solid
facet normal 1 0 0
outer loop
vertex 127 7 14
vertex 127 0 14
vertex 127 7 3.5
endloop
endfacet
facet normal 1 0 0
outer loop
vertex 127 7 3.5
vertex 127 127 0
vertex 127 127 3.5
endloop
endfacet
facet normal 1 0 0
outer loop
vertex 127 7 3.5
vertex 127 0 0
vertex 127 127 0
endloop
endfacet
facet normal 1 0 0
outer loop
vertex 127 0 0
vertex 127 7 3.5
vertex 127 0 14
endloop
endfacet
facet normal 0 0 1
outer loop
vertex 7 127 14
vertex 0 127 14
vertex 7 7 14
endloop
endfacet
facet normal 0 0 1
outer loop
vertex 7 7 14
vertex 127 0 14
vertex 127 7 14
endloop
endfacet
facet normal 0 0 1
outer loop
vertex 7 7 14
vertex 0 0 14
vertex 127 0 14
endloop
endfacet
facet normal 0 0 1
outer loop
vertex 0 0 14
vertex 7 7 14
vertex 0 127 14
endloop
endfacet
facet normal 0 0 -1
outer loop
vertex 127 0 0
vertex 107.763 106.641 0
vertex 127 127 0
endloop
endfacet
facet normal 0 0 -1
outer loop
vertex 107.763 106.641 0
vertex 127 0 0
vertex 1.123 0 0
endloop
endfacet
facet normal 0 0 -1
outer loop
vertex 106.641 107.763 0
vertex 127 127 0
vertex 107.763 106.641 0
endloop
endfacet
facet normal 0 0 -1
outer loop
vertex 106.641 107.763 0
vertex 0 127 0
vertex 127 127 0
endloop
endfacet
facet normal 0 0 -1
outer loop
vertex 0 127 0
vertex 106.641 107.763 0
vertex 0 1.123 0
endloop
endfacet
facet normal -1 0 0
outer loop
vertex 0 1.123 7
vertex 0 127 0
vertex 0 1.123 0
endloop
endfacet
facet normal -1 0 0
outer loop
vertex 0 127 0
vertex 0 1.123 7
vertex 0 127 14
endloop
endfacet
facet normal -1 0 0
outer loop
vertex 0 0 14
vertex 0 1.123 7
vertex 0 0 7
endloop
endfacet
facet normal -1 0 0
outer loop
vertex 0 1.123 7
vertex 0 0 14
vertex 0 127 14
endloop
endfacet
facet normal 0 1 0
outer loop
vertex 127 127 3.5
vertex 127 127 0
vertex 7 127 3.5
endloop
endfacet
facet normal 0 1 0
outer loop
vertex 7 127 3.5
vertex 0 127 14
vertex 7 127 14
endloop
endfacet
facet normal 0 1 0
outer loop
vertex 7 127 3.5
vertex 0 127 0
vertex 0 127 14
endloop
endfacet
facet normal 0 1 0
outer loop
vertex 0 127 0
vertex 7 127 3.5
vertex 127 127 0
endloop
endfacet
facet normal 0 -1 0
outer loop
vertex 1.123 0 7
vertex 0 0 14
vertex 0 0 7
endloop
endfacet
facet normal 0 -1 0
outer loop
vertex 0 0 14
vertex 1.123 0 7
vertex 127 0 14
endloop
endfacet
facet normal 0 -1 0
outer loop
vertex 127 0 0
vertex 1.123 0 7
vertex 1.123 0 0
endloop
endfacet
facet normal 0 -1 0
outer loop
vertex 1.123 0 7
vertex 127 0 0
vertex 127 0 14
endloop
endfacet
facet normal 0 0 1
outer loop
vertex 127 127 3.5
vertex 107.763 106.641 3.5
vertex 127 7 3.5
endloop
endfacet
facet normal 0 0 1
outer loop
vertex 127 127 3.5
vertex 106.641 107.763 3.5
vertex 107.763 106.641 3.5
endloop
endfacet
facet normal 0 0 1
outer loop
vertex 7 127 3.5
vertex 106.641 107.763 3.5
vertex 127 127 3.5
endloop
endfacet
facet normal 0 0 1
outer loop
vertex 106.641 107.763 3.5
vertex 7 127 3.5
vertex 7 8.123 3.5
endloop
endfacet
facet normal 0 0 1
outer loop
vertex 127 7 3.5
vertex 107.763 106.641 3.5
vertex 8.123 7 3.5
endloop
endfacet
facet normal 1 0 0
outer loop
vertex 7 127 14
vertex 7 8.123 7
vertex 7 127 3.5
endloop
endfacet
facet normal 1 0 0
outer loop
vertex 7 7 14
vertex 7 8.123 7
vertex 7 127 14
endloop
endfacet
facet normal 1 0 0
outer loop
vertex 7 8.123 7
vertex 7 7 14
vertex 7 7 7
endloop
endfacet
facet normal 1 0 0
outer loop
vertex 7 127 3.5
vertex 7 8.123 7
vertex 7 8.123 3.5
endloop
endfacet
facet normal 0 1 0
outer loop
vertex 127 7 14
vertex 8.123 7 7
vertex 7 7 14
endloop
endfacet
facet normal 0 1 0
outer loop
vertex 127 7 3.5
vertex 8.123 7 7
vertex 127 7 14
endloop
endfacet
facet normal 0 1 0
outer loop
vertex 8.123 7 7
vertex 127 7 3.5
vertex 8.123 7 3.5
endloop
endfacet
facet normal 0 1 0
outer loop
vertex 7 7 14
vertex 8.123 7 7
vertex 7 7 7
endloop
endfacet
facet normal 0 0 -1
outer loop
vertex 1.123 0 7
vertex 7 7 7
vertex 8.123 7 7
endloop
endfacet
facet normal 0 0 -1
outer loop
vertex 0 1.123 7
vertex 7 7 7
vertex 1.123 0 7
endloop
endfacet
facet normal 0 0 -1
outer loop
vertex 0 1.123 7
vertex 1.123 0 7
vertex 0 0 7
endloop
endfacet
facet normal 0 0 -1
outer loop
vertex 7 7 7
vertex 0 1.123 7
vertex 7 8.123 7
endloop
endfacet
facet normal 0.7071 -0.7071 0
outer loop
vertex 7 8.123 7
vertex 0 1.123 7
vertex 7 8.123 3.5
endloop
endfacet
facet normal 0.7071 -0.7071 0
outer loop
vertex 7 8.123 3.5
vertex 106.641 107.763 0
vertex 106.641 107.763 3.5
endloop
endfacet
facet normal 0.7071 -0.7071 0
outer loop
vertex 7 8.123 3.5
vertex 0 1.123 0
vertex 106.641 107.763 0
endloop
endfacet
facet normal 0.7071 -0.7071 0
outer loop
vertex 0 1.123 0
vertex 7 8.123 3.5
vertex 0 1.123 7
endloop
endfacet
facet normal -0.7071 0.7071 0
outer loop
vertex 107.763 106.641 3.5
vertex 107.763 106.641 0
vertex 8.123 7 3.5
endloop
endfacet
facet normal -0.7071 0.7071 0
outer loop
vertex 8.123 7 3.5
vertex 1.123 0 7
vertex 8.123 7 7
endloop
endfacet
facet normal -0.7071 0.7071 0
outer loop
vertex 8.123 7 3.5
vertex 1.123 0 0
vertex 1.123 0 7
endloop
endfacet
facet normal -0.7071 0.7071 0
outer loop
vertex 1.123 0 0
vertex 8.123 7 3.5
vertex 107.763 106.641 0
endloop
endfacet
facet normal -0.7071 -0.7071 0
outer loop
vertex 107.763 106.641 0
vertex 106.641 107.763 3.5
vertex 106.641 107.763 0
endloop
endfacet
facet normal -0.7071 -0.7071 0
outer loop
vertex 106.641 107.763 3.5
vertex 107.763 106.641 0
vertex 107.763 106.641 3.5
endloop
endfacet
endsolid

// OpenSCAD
WIDTH = 5 * 25.4;
HEIGHT = 14;
THICK = HEIGHT/2;
PENCIL_WIDTH = 1/16 * 25.4;

difference()
{
    difference()
    {
        cube( [ WIDTH, WIDTH, HEIGHT], center = false);
        translate( [ THICK ,THICK ,THICK/2])
        cube( [ WIDTH, WIDTH, HEIGHT], center = false);
    }

    rotate( [ 0, 0, 45] )
    translate( [ -PENCIL_WIDTH/2, -PENCIL_WIDTH/2, -HEIGHT/2 ] )
    #cube([WIDTH * 1.2, PENCIL_WIDTH, HEIGHT], center = false);
}
